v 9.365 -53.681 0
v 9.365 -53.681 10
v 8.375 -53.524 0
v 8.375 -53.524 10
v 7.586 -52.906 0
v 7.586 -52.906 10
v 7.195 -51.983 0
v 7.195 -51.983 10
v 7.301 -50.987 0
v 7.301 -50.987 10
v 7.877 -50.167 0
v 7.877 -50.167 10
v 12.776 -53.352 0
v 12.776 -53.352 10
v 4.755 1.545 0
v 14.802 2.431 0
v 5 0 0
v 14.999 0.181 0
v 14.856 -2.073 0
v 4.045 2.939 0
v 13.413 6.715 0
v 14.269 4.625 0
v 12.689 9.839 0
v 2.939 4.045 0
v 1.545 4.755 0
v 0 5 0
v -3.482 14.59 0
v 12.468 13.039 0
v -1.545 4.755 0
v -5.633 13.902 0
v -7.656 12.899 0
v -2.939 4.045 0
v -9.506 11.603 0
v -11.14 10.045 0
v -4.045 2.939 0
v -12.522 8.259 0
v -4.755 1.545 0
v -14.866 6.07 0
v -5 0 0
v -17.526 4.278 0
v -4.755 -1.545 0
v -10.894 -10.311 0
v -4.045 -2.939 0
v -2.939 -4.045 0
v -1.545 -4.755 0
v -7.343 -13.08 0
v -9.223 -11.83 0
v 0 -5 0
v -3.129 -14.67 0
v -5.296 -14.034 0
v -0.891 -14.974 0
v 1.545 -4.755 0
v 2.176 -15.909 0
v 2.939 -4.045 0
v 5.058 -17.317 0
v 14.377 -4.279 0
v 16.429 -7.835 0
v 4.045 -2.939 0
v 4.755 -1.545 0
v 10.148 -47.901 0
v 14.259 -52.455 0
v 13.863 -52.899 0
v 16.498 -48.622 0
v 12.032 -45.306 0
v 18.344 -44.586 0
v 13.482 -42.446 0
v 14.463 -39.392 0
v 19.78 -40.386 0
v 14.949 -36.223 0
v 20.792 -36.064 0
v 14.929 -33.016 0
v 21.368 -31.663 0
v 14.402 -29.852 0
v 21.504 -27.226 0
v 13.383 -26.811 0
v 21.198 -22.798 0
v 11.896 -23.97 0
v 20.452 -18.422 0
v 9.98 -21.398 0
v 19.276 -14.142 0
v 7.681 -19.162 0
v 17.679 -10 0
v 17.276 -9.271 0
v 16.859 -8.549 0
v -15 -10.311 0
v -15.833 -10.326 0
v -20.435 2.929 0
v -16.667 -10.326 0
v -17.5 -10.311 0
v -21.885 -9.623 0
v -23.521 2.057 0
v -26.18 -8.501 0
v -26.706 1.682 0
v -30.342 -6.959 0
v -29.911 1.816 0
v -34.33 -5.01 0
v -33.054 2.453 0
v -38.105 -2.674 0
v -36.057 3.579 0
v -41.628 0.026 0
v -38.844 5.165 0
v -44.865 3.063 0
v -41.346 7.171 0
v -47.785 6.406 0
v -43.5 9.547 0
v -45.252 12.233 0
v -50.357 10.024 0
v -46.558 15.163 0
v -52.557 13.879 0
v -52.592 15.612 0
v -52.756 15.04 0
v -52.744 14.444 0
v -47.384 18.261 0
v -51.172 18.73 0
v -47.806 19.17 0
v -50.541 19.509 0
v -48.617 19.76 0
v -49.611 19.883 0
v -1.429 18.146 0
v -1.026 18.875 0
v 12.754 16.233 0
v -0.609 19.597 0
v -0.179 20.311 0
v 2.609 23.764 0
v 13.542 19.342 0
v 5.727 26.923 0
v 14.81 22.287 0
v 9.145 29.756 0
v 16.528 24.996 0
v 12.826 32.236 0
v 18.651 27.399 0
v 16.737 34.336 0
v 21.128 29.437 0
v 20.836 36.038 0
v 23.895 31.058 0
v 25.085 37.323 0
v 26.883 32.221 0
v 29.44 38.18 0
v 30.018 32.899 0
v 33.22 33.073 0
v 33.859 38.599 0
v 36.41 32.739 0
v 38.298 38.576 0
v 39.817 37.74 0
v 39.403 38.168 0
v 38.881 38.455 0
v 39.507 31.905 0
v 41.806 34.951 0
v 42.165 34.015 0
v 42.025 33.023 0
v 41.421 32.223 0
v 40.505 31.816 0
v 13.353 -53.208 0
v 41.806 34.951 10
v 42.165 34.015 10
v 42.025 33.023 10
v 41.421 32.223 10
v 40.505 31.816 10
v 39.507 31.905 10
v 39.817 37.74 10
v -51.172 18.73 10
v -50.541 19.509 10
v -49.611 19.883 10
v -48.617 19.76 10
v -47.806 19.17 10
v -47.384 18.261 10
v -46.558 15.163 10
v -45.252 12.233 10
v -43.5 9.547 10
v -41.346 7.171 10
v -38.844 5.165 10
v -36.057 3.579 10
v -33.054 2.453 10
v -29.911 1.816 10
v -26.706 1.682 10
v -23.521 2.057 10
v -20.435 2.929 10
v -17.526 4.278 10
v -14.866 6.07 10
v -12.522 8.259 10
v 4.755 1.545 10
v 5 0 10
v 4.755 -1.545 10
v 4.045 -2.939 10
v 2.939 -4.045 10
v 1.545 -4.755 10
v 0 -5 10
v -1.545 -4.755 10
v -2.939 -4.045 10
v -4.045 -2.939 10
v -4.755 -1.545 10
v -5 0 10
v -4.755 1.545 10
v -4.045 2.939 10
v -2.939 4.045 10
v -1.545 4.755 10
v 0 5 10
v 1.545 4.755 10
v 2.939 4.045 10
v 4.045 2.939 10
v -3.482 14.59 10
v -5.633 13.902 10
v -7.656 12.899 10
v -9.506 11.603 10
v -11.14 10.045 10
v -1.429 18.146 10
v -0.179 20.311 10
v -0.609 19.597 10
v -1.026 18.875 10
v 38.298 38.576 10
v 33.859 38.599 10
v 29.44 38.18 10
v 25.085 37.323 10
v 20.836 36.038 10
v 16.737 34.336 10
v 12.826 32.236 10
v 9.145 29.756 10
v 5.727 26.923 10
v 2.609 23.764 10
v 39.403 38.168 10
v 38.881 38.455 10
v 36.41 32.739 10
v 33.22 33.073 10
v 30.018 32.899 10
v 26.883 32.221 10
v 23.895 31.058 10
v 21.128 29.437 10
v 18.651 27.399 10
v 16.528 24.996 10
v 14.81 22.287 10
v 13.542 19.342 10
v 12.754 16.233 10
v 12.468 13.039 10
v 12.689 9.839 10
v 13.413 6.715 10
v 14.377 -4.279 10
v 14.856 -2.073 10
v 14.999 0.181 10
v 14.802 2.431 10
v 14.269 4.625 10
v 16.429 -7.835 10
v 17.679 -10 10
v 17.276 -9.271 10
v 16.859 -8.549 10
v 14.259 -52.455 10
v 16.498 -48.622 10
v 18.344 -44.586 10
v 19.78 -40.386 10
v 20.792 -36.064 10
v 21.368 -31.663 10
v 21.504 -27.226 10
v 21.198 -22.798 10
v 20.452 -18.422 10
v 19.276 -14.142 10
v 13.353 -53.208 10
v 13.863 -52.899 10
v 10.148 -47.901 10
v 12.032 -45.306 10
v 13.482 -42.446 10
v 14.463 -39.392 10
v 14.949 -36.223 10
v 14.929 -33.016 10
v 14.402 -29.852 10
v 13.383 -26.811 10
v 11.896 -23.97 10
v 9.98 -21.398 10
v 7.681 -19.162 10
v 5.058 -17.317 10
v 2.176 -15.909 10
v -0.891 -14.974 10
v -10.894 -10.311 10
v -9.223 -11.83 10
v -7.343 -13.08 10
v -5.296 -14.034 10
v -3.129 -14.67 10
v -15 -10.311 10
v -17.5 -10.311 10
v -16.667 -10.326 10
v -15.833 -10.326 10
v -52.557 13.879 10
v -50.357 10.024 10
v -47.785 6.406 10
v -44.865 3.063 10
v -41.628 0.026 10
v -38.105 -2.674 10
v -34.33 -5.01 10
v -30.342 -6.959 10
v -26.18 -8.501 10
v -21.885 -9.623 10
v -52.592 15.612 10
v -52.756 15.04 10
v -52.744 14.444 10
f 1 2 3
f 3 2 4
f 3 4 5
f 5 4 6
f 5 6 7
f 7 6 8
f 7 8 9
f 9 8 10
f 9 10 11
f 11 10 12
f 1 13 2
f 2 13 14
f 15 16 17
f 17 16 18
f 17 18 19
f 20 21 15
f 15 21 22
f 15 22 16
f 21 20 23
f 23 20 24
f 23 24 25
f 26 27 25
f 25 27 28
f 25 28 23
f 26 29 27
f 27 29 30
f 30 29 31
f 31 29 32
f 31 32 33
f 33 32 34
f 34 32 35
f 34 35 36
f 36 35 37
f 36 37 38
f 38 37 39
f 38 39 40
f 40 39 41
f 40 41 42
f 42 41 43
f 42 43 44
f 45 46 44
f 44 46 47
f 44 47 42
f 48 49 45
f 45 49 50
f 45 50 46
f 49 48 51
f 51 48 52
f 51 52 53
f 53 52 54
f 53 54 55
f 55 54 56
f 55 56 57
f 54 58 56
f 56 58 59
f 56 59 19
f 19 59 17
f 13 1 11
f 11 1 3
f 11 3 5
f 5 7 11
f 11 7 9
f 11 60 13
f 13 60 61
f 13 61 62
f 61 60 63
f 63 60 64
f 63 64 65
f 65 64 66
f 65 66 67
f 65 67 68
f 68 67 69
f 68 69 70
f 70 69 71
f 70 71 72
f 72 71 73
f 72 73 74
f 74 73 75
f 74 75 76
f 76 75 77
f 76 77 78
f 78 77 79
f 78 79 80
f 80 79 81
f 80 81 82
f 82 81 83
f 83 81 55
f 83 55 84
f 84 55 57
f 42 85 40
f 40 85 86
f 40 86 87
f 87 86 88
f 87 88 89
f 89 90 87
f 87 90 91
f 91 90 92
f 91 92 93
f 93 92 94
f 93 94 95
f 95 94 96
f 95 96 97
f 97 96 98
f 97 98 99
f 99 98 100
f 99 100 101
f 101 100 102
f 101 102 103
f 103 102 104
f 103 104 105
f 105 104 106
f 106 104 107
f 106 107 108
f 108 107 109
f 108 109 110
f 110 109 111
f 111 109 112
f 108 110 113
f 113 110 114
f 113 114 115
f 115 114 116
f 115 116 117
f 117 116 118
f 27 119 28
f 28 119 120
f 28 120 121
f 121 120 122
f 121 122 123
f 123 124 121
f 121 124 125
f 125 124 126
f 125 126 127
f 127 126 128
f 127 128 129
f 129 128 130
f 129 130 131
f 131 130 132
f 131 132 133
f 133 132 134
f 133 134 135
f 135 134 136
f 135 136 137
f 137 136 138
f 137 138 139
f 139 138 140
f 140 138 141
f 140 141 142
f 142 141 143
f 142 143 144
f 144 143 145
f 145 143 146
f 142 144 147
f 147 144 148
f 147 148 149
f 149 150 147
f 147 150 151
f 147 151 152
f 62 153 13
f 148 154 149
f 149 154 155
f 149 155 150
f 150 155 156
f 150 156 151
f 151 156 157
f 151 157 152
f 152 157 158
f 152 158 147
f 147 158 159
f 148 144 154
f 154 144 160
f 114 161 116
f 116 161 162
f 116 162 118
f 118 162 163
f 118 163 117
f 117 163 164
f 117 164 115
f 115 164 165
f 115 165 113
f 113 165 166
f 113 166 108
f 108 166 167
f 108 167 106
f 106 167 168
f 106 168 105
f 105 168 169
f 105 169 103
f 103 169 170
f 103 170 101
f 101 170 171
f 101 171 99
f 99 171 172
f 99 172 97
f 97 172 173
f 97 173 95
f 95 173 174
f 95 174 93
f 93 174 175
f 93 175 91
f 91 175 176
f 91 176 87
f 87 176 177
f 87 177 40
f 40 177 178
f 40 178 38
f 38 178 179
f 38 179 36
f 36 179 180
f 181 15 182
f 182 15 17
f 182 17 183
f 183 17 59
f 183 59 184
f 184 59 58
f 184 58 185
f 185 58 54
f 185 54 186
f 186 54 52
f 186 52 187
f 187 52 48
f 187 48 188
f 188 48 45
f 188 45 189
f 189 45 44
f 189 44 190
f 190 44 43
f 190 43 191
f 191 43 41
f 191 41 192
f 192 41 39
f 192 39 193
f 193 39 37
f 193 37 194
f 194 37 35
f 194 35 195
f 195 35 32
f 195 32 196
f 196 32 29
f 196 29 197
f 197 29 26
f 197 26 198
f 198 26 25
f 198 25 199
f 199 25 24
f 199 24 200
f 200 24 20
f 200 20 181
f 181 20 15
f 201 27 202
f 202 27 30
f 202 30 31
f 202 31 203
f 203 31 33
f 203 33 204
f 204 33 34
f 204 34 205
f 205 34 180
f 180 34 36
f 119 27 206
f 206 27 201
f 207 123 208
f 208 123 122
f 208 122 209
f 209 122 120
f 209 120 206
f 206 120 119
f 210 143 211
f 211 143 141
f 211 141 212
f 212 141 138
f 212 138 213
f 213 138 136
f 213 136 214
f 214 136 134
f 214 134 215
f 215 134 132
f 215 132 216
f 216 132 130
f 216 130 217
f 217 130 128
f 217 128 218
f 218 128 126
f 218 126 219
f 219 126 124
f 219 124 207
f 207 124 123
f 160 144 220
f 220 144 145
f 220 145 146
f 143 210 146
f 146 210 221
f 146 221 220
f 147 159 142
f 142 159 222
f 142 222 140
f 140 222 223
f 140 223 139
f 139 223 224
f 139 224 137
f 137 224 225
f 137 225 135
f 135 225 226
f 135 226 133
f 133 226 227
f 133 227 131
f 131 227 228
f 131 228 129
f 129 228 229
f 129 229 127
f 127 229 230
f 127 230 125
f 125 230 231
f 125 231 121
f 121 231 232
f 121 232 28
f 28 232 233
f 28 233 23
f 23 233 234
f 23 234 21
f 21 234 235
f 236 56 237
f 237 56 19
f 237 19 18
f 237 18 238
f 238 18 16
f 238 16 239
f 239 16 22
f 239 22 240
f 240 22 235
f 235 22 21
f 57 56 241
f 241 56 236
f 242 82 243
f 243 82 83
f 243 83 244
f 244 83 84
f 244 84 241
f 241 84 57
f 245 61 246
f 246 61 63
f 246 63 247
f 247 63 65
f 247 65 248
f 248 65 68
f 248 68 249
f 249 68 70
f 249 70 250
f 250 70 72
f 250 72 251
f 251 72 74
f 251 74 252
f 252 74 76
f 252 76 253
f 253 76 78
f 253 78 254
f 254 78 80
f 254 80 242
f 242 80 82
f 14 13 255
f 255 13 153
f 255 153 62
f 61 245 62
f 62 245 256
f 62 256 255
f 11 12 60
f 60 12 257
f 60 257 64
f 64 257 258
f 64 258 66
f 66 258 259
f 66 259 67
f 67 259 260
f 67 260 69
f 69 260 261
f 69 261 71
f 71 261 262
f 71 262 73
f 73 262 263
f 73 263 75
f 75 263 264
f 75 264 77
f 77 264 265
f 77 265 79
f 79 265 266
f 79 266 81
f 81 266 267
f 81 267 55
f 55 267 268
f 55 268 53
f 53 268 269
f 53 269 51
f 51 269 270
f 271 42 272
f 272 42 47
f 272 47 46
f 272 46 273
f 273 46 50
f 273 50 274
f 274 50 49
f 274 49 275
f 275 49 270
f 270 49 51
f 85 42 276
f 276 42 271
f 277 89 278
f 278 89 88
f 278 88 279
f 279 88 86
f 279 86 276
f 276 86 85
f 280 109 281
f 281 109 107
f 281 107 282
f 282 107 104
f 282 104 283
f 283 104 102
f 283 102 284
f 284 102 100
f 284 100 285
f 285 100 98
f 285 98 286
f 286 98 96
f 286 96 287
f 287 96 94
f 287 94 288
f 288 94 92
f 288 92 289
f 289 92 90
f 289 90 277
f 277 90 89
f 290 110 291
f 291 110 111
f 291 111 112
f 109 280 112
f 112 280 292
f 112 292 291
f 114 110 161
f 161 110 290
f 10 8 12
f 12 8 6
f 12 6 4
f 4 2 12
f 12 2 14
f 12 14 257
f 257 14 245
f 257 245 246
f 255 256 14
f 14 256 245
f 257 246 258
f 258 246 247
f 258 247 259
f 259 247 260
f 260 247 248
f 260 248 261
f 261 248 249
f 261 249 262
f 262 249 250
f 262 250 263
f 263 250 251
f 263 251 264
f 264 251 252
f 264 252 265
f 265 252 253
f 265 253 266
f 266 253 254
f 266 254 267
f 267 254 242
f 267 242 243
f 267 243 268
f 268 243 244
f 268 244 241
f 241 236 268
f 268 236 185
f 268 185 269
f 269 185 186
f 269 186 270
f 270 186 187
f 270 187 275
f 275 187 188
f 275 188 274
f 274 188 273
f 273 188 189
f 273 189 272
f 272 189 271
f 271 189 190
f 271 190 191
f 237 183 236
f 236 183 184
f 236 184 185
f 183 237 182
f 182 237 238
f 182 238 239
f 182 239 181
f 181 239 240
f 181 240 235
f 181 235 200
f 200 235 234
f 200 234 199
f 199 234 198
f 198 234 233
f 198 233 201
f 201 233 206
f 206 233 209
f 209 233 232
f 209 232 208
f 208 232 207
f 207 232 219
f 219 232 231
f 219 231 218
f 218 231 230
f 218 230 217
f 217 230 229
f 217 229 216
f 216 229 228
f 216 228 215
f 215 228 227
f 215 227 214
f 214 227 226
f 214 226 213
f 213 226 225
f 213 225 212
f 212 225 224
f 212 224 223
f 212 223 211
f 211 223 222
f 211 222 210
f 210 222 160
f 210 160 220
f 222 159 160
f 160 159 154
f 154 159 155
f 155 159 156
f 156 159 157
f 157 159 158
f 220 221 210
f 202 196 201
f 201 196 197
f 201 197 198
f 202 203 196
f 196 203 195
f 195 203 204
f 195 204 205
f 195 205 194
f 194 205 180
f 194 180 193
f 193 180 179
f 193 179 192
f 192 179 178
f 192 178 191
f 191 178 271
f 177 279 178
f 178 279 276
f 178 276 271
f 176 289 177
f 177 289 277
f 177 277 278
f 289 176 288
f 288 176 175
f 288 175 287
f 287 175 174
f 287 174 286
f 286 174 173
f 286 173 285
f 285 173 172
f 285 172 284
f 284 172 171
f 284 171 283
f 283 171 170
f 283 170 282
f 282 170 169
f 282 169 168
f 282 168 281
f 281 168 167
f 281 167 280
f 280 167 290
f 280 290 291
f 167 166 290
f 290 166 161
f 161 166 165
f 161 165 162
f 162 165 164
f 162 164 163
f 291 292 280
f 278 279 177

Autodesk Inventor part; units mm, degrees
ref_plane "YZ Plane" through (0, 0, 0) normal (1, 0, 0) x (0, 1, 0)
ref_plane "XZ Plane" through (0, 0, 0) normal (0, 1, 0) x (-1, 0, 0)
sketch "Sketch1" plane through (0, 0, 0) normal (0, 0, 1) x (1, 0, 0)
  circle A0 centre (0, 0) radius 15
  circle A1 centre (0, 0) radius 55
  line L0 (15, 0) -> (55, 0) construction
  circle A2 centre (35, 0) radius 20 construction
  circle A3 centre (-17.5, 30.3109) radius 20 construction
  circle A4 centre (-17.5, -30.3109) radius 20 construction
  line L1 (0, 0) -> (-10.834, 10.3742)
  line L2 (0, 0) -> (27.5, -47.6314)
  line L3 (0, 0) -> (-55, 0) construction
  line L4 (0, 0) -> (27.5, 47.6314)
  line L5 (17.5, 30.3109) -> (27.5, 47.6314) construction
  line L6 (-1.4324, 18.1475) -> (18.5676, 52.7885) construction
  line L7 (18.5676, 52.7885) -> (36.4324, 42.4743) construction
  line L8 (36.4324, 42.4743) -> (16.4324, 7.8333) construction
  line L9 (16.4324, 7.8333) -> (-1.4324, 18.1475) construction
  line L10 (-1.4324, 18.1475) -> (36.4324, 42.4743) construction
  line L11 (18.5676, 52.7885) -> (16.4324, 7.8333) construction
  line L12 (-1.4891, -18.1802) -> (18.5109, -52.8212) construction
  line L13 (18.5109, -52.8212) -> (36.4891, -42.4416) construction
  line L14 (36.4891, -42.4416) -> (16.4891, -7.8006) construction
  line L15 (16.4891, -7.8006) -> (-1.4891, -18.1802) construction
  line L16 (-1.4891, -18.1802) -> (36.4891, -42.4416) construction
  line L17 (18.5109, -52.8212) -> (16.4891, -7.8006) construction
  line L18 (-55.0081, 10.3109) -> (-15, 10.3109) construction
  line L19 (-15, 10.3109) -> (-15, -10.3109) construction
  line L20 (-15, -10.3109) -> (-55.0081, -10.3109) construction
  line L21 (-55.0081, -10.3109) -> (-55.0081, 10.3109)
  line L22 (-55.0081, 10.3109) -> (-15, -10.3109) construction
  line L23 (-15, 10.3109) -> (-55.0081, -10.3109) construction
  line L24 (-39.1178, -2.5) -> (-30.8902, -2.5) construction
  line L25 (-30.8902, -2.5) -> (-30.8902, 2.5) construction
  line L26 (-30.8902, 2.5) -> (-39.1178, 2.5) construction
  line L27 (-39.1178, 2.5) -> (-39.1178, -2.5) construction
  line L28 (-39.1178, -2.5) -> (-30.8902, 2.5) construction
  line L29 (-30.8902, -2.5) -> (-39.1178, 2.5) construction
  line L30 (-55.0081, 10.3109) -> (-55.0081, -10.3109) construction
  line L31 (-55.0081, 10.3109) -> (-55.0081, -10.3109) construction
  circle A5 centre (0, 0) radius 5
  arc A6 (-47.6318, 23.7685) -> (-10.834, 10.3742) centre (-27.4698, 21.9149) ccw
  line L32 (-15, -10.3109) -> (-10.8943, -10.3109)
  line L33 (-46.714, 28.5112) -> (-52.5923, 15.6119)
  arc A7 (-52.5567, 13.8792) -> (-17.5, -10.3109) centre (-12.7886, 34.0144) ccw
  arc A8 (-17.5, -10.3109) -> (-15, -10.3109) centre (-16.25, 36.3845) ccw
  arc A9 (-52.5923, 15.6119) -> (-52.5567, 13.8792) centre (-50.7724, 14.7826) ccw
  line L34 (-46.714, 28.5112) -> (-45.8939, 30.3109)
  arc A10 (-45.8939, 30.3109) -> (-47.6318, 23.7685) centre (-27.4698, 21.9149) ccw
  arc A11 (14.2587, -52.455) -> (17.6795, -10) centre (-23.063, -28.0825) ccw
  arc A12 (12.7758, -53.3523) -> (14.2587, -52.455) centre (12.5841, -51.3615) ccw
  line L35 (-1.3344, -54.7111) -> (12.7758, -53.3523)
  arc A13 (3.2318, -53.1346) -> (-3.5673, -14.5696) centre (-5.2439, -34.747) ccw
  arc A14 (-3.3031, -54.9007) -> (3.2318, -53.1346) centre (-5.2439, -34.747) ccw
  line L36 (-1.3344, -54.7111) -> (-3.3031, -54.9007)
  line L37 (16.4295, -7.8349) -> (14.3766, -4.2793)
  arc A15 (17.6795, -10) -> (16.4295, -7.8349) centre (-23.3849, -32.2652) ccw
  circle A16 centre (0, 0) radius 15
  arc A17 (38.2981, 38.5759) -> (-0.1795, 20.3109) centre (35.8517, -5.9319) ccw
  arc A18 (39.8165, 37.7403) -> (38.2981, 38.5759) centre (38.1883, 36.5789) ccw
  line L38 (48.0484, 26.2) -> (39.8165, 37.7403)
  arc A19 (44.4, 29.3661) -> (14.4013, 4.1954) centre (32.7138, 12.8321) ccw
  arc A20 (49.1969, 24.5898) -> (44.4, 29.3661) centre (32.7138, 12.8321) ccw
  line L39 (48.0484, 26.2) -> (49.1969, 24.5898)
  line L40 (-1.4295, 18.1458) -> (-3.4823, 14.5902)
  arc A21 (-0.1795, 20.3109) -> (-1.4295, 18.1458) centre (39.6349, -4.1193) ccw
  circle A22 centre (0, 0) radius 15
  point P0 (-27.5, 47.6314)
  point P1 (-27.5, -47.6314)
  point P2 (17.5, -30.3109)
  point P3 (-35.004, 0)
  point P4 (-52.9855, 14.7493)
  point P5 (-52.9855, 14.7493)
  point P6 (7.5, -12.9904)
  point P7 (-12.5218, 8.2586)
  point P8 (-7.5, 12.9904)
  point P9 (-7.5, -12.9904)
  point P10 (-0.8912, -14.9735)
  point P11 (13.413, 6.7149)
  dimension "d0" = 30
  dimension "d1" = 40
  dimension "d4" = 360
  dimension "d6" = 5
  dimension "d11" = 10
  dimension "d24" = 2
  dimension "d31" = 360
extrude "Extrusion1" add sketch "Sketch1" along normal blind 10 contours A0 L2 A5 L4 A19 | A19 A0 | L37 A15 A11 L2 A0 | A0 L4 A17 A18 L38 L39 A20 A19 | L2 A11 A12 L35 L36 A14 A13 A0 | A0 A13 A6 L1 A5 L2 | L4 A5 L1 A0 | A0 L40 A21 A17 L4 | A0 A13 | A6 A0 | L32 A8 A7 A9 L33 L34 A10 A6 A0
fillet "Fillet1" radius 2 3 edges at (-45.8939, 30.3109, 5) (49.1969, 24.5898, 5) (-3.3031, -54.9007, 5)
sketch "Sketch2" plane through (0, 0, 10) normal (0, 0, 1) x (1, 0, 0)
  line L0 (17.5, 30.3109) -> (27.5, 47.6314) construction
  line L1 (27.5, 47.6314) -> (2.5, 4.3301)
  circle A0 centre (0, 0) radius 5 projected
  circle A1 centre (0, 0) radius 15 construction
  circle A2 centre (0, 0) radius 5 construction
ref_plane "Work Plane3" through (0, 0, 5) normal (0, 0, -1) x (-1, 0, 0)
properties part number "Combine mk5"
